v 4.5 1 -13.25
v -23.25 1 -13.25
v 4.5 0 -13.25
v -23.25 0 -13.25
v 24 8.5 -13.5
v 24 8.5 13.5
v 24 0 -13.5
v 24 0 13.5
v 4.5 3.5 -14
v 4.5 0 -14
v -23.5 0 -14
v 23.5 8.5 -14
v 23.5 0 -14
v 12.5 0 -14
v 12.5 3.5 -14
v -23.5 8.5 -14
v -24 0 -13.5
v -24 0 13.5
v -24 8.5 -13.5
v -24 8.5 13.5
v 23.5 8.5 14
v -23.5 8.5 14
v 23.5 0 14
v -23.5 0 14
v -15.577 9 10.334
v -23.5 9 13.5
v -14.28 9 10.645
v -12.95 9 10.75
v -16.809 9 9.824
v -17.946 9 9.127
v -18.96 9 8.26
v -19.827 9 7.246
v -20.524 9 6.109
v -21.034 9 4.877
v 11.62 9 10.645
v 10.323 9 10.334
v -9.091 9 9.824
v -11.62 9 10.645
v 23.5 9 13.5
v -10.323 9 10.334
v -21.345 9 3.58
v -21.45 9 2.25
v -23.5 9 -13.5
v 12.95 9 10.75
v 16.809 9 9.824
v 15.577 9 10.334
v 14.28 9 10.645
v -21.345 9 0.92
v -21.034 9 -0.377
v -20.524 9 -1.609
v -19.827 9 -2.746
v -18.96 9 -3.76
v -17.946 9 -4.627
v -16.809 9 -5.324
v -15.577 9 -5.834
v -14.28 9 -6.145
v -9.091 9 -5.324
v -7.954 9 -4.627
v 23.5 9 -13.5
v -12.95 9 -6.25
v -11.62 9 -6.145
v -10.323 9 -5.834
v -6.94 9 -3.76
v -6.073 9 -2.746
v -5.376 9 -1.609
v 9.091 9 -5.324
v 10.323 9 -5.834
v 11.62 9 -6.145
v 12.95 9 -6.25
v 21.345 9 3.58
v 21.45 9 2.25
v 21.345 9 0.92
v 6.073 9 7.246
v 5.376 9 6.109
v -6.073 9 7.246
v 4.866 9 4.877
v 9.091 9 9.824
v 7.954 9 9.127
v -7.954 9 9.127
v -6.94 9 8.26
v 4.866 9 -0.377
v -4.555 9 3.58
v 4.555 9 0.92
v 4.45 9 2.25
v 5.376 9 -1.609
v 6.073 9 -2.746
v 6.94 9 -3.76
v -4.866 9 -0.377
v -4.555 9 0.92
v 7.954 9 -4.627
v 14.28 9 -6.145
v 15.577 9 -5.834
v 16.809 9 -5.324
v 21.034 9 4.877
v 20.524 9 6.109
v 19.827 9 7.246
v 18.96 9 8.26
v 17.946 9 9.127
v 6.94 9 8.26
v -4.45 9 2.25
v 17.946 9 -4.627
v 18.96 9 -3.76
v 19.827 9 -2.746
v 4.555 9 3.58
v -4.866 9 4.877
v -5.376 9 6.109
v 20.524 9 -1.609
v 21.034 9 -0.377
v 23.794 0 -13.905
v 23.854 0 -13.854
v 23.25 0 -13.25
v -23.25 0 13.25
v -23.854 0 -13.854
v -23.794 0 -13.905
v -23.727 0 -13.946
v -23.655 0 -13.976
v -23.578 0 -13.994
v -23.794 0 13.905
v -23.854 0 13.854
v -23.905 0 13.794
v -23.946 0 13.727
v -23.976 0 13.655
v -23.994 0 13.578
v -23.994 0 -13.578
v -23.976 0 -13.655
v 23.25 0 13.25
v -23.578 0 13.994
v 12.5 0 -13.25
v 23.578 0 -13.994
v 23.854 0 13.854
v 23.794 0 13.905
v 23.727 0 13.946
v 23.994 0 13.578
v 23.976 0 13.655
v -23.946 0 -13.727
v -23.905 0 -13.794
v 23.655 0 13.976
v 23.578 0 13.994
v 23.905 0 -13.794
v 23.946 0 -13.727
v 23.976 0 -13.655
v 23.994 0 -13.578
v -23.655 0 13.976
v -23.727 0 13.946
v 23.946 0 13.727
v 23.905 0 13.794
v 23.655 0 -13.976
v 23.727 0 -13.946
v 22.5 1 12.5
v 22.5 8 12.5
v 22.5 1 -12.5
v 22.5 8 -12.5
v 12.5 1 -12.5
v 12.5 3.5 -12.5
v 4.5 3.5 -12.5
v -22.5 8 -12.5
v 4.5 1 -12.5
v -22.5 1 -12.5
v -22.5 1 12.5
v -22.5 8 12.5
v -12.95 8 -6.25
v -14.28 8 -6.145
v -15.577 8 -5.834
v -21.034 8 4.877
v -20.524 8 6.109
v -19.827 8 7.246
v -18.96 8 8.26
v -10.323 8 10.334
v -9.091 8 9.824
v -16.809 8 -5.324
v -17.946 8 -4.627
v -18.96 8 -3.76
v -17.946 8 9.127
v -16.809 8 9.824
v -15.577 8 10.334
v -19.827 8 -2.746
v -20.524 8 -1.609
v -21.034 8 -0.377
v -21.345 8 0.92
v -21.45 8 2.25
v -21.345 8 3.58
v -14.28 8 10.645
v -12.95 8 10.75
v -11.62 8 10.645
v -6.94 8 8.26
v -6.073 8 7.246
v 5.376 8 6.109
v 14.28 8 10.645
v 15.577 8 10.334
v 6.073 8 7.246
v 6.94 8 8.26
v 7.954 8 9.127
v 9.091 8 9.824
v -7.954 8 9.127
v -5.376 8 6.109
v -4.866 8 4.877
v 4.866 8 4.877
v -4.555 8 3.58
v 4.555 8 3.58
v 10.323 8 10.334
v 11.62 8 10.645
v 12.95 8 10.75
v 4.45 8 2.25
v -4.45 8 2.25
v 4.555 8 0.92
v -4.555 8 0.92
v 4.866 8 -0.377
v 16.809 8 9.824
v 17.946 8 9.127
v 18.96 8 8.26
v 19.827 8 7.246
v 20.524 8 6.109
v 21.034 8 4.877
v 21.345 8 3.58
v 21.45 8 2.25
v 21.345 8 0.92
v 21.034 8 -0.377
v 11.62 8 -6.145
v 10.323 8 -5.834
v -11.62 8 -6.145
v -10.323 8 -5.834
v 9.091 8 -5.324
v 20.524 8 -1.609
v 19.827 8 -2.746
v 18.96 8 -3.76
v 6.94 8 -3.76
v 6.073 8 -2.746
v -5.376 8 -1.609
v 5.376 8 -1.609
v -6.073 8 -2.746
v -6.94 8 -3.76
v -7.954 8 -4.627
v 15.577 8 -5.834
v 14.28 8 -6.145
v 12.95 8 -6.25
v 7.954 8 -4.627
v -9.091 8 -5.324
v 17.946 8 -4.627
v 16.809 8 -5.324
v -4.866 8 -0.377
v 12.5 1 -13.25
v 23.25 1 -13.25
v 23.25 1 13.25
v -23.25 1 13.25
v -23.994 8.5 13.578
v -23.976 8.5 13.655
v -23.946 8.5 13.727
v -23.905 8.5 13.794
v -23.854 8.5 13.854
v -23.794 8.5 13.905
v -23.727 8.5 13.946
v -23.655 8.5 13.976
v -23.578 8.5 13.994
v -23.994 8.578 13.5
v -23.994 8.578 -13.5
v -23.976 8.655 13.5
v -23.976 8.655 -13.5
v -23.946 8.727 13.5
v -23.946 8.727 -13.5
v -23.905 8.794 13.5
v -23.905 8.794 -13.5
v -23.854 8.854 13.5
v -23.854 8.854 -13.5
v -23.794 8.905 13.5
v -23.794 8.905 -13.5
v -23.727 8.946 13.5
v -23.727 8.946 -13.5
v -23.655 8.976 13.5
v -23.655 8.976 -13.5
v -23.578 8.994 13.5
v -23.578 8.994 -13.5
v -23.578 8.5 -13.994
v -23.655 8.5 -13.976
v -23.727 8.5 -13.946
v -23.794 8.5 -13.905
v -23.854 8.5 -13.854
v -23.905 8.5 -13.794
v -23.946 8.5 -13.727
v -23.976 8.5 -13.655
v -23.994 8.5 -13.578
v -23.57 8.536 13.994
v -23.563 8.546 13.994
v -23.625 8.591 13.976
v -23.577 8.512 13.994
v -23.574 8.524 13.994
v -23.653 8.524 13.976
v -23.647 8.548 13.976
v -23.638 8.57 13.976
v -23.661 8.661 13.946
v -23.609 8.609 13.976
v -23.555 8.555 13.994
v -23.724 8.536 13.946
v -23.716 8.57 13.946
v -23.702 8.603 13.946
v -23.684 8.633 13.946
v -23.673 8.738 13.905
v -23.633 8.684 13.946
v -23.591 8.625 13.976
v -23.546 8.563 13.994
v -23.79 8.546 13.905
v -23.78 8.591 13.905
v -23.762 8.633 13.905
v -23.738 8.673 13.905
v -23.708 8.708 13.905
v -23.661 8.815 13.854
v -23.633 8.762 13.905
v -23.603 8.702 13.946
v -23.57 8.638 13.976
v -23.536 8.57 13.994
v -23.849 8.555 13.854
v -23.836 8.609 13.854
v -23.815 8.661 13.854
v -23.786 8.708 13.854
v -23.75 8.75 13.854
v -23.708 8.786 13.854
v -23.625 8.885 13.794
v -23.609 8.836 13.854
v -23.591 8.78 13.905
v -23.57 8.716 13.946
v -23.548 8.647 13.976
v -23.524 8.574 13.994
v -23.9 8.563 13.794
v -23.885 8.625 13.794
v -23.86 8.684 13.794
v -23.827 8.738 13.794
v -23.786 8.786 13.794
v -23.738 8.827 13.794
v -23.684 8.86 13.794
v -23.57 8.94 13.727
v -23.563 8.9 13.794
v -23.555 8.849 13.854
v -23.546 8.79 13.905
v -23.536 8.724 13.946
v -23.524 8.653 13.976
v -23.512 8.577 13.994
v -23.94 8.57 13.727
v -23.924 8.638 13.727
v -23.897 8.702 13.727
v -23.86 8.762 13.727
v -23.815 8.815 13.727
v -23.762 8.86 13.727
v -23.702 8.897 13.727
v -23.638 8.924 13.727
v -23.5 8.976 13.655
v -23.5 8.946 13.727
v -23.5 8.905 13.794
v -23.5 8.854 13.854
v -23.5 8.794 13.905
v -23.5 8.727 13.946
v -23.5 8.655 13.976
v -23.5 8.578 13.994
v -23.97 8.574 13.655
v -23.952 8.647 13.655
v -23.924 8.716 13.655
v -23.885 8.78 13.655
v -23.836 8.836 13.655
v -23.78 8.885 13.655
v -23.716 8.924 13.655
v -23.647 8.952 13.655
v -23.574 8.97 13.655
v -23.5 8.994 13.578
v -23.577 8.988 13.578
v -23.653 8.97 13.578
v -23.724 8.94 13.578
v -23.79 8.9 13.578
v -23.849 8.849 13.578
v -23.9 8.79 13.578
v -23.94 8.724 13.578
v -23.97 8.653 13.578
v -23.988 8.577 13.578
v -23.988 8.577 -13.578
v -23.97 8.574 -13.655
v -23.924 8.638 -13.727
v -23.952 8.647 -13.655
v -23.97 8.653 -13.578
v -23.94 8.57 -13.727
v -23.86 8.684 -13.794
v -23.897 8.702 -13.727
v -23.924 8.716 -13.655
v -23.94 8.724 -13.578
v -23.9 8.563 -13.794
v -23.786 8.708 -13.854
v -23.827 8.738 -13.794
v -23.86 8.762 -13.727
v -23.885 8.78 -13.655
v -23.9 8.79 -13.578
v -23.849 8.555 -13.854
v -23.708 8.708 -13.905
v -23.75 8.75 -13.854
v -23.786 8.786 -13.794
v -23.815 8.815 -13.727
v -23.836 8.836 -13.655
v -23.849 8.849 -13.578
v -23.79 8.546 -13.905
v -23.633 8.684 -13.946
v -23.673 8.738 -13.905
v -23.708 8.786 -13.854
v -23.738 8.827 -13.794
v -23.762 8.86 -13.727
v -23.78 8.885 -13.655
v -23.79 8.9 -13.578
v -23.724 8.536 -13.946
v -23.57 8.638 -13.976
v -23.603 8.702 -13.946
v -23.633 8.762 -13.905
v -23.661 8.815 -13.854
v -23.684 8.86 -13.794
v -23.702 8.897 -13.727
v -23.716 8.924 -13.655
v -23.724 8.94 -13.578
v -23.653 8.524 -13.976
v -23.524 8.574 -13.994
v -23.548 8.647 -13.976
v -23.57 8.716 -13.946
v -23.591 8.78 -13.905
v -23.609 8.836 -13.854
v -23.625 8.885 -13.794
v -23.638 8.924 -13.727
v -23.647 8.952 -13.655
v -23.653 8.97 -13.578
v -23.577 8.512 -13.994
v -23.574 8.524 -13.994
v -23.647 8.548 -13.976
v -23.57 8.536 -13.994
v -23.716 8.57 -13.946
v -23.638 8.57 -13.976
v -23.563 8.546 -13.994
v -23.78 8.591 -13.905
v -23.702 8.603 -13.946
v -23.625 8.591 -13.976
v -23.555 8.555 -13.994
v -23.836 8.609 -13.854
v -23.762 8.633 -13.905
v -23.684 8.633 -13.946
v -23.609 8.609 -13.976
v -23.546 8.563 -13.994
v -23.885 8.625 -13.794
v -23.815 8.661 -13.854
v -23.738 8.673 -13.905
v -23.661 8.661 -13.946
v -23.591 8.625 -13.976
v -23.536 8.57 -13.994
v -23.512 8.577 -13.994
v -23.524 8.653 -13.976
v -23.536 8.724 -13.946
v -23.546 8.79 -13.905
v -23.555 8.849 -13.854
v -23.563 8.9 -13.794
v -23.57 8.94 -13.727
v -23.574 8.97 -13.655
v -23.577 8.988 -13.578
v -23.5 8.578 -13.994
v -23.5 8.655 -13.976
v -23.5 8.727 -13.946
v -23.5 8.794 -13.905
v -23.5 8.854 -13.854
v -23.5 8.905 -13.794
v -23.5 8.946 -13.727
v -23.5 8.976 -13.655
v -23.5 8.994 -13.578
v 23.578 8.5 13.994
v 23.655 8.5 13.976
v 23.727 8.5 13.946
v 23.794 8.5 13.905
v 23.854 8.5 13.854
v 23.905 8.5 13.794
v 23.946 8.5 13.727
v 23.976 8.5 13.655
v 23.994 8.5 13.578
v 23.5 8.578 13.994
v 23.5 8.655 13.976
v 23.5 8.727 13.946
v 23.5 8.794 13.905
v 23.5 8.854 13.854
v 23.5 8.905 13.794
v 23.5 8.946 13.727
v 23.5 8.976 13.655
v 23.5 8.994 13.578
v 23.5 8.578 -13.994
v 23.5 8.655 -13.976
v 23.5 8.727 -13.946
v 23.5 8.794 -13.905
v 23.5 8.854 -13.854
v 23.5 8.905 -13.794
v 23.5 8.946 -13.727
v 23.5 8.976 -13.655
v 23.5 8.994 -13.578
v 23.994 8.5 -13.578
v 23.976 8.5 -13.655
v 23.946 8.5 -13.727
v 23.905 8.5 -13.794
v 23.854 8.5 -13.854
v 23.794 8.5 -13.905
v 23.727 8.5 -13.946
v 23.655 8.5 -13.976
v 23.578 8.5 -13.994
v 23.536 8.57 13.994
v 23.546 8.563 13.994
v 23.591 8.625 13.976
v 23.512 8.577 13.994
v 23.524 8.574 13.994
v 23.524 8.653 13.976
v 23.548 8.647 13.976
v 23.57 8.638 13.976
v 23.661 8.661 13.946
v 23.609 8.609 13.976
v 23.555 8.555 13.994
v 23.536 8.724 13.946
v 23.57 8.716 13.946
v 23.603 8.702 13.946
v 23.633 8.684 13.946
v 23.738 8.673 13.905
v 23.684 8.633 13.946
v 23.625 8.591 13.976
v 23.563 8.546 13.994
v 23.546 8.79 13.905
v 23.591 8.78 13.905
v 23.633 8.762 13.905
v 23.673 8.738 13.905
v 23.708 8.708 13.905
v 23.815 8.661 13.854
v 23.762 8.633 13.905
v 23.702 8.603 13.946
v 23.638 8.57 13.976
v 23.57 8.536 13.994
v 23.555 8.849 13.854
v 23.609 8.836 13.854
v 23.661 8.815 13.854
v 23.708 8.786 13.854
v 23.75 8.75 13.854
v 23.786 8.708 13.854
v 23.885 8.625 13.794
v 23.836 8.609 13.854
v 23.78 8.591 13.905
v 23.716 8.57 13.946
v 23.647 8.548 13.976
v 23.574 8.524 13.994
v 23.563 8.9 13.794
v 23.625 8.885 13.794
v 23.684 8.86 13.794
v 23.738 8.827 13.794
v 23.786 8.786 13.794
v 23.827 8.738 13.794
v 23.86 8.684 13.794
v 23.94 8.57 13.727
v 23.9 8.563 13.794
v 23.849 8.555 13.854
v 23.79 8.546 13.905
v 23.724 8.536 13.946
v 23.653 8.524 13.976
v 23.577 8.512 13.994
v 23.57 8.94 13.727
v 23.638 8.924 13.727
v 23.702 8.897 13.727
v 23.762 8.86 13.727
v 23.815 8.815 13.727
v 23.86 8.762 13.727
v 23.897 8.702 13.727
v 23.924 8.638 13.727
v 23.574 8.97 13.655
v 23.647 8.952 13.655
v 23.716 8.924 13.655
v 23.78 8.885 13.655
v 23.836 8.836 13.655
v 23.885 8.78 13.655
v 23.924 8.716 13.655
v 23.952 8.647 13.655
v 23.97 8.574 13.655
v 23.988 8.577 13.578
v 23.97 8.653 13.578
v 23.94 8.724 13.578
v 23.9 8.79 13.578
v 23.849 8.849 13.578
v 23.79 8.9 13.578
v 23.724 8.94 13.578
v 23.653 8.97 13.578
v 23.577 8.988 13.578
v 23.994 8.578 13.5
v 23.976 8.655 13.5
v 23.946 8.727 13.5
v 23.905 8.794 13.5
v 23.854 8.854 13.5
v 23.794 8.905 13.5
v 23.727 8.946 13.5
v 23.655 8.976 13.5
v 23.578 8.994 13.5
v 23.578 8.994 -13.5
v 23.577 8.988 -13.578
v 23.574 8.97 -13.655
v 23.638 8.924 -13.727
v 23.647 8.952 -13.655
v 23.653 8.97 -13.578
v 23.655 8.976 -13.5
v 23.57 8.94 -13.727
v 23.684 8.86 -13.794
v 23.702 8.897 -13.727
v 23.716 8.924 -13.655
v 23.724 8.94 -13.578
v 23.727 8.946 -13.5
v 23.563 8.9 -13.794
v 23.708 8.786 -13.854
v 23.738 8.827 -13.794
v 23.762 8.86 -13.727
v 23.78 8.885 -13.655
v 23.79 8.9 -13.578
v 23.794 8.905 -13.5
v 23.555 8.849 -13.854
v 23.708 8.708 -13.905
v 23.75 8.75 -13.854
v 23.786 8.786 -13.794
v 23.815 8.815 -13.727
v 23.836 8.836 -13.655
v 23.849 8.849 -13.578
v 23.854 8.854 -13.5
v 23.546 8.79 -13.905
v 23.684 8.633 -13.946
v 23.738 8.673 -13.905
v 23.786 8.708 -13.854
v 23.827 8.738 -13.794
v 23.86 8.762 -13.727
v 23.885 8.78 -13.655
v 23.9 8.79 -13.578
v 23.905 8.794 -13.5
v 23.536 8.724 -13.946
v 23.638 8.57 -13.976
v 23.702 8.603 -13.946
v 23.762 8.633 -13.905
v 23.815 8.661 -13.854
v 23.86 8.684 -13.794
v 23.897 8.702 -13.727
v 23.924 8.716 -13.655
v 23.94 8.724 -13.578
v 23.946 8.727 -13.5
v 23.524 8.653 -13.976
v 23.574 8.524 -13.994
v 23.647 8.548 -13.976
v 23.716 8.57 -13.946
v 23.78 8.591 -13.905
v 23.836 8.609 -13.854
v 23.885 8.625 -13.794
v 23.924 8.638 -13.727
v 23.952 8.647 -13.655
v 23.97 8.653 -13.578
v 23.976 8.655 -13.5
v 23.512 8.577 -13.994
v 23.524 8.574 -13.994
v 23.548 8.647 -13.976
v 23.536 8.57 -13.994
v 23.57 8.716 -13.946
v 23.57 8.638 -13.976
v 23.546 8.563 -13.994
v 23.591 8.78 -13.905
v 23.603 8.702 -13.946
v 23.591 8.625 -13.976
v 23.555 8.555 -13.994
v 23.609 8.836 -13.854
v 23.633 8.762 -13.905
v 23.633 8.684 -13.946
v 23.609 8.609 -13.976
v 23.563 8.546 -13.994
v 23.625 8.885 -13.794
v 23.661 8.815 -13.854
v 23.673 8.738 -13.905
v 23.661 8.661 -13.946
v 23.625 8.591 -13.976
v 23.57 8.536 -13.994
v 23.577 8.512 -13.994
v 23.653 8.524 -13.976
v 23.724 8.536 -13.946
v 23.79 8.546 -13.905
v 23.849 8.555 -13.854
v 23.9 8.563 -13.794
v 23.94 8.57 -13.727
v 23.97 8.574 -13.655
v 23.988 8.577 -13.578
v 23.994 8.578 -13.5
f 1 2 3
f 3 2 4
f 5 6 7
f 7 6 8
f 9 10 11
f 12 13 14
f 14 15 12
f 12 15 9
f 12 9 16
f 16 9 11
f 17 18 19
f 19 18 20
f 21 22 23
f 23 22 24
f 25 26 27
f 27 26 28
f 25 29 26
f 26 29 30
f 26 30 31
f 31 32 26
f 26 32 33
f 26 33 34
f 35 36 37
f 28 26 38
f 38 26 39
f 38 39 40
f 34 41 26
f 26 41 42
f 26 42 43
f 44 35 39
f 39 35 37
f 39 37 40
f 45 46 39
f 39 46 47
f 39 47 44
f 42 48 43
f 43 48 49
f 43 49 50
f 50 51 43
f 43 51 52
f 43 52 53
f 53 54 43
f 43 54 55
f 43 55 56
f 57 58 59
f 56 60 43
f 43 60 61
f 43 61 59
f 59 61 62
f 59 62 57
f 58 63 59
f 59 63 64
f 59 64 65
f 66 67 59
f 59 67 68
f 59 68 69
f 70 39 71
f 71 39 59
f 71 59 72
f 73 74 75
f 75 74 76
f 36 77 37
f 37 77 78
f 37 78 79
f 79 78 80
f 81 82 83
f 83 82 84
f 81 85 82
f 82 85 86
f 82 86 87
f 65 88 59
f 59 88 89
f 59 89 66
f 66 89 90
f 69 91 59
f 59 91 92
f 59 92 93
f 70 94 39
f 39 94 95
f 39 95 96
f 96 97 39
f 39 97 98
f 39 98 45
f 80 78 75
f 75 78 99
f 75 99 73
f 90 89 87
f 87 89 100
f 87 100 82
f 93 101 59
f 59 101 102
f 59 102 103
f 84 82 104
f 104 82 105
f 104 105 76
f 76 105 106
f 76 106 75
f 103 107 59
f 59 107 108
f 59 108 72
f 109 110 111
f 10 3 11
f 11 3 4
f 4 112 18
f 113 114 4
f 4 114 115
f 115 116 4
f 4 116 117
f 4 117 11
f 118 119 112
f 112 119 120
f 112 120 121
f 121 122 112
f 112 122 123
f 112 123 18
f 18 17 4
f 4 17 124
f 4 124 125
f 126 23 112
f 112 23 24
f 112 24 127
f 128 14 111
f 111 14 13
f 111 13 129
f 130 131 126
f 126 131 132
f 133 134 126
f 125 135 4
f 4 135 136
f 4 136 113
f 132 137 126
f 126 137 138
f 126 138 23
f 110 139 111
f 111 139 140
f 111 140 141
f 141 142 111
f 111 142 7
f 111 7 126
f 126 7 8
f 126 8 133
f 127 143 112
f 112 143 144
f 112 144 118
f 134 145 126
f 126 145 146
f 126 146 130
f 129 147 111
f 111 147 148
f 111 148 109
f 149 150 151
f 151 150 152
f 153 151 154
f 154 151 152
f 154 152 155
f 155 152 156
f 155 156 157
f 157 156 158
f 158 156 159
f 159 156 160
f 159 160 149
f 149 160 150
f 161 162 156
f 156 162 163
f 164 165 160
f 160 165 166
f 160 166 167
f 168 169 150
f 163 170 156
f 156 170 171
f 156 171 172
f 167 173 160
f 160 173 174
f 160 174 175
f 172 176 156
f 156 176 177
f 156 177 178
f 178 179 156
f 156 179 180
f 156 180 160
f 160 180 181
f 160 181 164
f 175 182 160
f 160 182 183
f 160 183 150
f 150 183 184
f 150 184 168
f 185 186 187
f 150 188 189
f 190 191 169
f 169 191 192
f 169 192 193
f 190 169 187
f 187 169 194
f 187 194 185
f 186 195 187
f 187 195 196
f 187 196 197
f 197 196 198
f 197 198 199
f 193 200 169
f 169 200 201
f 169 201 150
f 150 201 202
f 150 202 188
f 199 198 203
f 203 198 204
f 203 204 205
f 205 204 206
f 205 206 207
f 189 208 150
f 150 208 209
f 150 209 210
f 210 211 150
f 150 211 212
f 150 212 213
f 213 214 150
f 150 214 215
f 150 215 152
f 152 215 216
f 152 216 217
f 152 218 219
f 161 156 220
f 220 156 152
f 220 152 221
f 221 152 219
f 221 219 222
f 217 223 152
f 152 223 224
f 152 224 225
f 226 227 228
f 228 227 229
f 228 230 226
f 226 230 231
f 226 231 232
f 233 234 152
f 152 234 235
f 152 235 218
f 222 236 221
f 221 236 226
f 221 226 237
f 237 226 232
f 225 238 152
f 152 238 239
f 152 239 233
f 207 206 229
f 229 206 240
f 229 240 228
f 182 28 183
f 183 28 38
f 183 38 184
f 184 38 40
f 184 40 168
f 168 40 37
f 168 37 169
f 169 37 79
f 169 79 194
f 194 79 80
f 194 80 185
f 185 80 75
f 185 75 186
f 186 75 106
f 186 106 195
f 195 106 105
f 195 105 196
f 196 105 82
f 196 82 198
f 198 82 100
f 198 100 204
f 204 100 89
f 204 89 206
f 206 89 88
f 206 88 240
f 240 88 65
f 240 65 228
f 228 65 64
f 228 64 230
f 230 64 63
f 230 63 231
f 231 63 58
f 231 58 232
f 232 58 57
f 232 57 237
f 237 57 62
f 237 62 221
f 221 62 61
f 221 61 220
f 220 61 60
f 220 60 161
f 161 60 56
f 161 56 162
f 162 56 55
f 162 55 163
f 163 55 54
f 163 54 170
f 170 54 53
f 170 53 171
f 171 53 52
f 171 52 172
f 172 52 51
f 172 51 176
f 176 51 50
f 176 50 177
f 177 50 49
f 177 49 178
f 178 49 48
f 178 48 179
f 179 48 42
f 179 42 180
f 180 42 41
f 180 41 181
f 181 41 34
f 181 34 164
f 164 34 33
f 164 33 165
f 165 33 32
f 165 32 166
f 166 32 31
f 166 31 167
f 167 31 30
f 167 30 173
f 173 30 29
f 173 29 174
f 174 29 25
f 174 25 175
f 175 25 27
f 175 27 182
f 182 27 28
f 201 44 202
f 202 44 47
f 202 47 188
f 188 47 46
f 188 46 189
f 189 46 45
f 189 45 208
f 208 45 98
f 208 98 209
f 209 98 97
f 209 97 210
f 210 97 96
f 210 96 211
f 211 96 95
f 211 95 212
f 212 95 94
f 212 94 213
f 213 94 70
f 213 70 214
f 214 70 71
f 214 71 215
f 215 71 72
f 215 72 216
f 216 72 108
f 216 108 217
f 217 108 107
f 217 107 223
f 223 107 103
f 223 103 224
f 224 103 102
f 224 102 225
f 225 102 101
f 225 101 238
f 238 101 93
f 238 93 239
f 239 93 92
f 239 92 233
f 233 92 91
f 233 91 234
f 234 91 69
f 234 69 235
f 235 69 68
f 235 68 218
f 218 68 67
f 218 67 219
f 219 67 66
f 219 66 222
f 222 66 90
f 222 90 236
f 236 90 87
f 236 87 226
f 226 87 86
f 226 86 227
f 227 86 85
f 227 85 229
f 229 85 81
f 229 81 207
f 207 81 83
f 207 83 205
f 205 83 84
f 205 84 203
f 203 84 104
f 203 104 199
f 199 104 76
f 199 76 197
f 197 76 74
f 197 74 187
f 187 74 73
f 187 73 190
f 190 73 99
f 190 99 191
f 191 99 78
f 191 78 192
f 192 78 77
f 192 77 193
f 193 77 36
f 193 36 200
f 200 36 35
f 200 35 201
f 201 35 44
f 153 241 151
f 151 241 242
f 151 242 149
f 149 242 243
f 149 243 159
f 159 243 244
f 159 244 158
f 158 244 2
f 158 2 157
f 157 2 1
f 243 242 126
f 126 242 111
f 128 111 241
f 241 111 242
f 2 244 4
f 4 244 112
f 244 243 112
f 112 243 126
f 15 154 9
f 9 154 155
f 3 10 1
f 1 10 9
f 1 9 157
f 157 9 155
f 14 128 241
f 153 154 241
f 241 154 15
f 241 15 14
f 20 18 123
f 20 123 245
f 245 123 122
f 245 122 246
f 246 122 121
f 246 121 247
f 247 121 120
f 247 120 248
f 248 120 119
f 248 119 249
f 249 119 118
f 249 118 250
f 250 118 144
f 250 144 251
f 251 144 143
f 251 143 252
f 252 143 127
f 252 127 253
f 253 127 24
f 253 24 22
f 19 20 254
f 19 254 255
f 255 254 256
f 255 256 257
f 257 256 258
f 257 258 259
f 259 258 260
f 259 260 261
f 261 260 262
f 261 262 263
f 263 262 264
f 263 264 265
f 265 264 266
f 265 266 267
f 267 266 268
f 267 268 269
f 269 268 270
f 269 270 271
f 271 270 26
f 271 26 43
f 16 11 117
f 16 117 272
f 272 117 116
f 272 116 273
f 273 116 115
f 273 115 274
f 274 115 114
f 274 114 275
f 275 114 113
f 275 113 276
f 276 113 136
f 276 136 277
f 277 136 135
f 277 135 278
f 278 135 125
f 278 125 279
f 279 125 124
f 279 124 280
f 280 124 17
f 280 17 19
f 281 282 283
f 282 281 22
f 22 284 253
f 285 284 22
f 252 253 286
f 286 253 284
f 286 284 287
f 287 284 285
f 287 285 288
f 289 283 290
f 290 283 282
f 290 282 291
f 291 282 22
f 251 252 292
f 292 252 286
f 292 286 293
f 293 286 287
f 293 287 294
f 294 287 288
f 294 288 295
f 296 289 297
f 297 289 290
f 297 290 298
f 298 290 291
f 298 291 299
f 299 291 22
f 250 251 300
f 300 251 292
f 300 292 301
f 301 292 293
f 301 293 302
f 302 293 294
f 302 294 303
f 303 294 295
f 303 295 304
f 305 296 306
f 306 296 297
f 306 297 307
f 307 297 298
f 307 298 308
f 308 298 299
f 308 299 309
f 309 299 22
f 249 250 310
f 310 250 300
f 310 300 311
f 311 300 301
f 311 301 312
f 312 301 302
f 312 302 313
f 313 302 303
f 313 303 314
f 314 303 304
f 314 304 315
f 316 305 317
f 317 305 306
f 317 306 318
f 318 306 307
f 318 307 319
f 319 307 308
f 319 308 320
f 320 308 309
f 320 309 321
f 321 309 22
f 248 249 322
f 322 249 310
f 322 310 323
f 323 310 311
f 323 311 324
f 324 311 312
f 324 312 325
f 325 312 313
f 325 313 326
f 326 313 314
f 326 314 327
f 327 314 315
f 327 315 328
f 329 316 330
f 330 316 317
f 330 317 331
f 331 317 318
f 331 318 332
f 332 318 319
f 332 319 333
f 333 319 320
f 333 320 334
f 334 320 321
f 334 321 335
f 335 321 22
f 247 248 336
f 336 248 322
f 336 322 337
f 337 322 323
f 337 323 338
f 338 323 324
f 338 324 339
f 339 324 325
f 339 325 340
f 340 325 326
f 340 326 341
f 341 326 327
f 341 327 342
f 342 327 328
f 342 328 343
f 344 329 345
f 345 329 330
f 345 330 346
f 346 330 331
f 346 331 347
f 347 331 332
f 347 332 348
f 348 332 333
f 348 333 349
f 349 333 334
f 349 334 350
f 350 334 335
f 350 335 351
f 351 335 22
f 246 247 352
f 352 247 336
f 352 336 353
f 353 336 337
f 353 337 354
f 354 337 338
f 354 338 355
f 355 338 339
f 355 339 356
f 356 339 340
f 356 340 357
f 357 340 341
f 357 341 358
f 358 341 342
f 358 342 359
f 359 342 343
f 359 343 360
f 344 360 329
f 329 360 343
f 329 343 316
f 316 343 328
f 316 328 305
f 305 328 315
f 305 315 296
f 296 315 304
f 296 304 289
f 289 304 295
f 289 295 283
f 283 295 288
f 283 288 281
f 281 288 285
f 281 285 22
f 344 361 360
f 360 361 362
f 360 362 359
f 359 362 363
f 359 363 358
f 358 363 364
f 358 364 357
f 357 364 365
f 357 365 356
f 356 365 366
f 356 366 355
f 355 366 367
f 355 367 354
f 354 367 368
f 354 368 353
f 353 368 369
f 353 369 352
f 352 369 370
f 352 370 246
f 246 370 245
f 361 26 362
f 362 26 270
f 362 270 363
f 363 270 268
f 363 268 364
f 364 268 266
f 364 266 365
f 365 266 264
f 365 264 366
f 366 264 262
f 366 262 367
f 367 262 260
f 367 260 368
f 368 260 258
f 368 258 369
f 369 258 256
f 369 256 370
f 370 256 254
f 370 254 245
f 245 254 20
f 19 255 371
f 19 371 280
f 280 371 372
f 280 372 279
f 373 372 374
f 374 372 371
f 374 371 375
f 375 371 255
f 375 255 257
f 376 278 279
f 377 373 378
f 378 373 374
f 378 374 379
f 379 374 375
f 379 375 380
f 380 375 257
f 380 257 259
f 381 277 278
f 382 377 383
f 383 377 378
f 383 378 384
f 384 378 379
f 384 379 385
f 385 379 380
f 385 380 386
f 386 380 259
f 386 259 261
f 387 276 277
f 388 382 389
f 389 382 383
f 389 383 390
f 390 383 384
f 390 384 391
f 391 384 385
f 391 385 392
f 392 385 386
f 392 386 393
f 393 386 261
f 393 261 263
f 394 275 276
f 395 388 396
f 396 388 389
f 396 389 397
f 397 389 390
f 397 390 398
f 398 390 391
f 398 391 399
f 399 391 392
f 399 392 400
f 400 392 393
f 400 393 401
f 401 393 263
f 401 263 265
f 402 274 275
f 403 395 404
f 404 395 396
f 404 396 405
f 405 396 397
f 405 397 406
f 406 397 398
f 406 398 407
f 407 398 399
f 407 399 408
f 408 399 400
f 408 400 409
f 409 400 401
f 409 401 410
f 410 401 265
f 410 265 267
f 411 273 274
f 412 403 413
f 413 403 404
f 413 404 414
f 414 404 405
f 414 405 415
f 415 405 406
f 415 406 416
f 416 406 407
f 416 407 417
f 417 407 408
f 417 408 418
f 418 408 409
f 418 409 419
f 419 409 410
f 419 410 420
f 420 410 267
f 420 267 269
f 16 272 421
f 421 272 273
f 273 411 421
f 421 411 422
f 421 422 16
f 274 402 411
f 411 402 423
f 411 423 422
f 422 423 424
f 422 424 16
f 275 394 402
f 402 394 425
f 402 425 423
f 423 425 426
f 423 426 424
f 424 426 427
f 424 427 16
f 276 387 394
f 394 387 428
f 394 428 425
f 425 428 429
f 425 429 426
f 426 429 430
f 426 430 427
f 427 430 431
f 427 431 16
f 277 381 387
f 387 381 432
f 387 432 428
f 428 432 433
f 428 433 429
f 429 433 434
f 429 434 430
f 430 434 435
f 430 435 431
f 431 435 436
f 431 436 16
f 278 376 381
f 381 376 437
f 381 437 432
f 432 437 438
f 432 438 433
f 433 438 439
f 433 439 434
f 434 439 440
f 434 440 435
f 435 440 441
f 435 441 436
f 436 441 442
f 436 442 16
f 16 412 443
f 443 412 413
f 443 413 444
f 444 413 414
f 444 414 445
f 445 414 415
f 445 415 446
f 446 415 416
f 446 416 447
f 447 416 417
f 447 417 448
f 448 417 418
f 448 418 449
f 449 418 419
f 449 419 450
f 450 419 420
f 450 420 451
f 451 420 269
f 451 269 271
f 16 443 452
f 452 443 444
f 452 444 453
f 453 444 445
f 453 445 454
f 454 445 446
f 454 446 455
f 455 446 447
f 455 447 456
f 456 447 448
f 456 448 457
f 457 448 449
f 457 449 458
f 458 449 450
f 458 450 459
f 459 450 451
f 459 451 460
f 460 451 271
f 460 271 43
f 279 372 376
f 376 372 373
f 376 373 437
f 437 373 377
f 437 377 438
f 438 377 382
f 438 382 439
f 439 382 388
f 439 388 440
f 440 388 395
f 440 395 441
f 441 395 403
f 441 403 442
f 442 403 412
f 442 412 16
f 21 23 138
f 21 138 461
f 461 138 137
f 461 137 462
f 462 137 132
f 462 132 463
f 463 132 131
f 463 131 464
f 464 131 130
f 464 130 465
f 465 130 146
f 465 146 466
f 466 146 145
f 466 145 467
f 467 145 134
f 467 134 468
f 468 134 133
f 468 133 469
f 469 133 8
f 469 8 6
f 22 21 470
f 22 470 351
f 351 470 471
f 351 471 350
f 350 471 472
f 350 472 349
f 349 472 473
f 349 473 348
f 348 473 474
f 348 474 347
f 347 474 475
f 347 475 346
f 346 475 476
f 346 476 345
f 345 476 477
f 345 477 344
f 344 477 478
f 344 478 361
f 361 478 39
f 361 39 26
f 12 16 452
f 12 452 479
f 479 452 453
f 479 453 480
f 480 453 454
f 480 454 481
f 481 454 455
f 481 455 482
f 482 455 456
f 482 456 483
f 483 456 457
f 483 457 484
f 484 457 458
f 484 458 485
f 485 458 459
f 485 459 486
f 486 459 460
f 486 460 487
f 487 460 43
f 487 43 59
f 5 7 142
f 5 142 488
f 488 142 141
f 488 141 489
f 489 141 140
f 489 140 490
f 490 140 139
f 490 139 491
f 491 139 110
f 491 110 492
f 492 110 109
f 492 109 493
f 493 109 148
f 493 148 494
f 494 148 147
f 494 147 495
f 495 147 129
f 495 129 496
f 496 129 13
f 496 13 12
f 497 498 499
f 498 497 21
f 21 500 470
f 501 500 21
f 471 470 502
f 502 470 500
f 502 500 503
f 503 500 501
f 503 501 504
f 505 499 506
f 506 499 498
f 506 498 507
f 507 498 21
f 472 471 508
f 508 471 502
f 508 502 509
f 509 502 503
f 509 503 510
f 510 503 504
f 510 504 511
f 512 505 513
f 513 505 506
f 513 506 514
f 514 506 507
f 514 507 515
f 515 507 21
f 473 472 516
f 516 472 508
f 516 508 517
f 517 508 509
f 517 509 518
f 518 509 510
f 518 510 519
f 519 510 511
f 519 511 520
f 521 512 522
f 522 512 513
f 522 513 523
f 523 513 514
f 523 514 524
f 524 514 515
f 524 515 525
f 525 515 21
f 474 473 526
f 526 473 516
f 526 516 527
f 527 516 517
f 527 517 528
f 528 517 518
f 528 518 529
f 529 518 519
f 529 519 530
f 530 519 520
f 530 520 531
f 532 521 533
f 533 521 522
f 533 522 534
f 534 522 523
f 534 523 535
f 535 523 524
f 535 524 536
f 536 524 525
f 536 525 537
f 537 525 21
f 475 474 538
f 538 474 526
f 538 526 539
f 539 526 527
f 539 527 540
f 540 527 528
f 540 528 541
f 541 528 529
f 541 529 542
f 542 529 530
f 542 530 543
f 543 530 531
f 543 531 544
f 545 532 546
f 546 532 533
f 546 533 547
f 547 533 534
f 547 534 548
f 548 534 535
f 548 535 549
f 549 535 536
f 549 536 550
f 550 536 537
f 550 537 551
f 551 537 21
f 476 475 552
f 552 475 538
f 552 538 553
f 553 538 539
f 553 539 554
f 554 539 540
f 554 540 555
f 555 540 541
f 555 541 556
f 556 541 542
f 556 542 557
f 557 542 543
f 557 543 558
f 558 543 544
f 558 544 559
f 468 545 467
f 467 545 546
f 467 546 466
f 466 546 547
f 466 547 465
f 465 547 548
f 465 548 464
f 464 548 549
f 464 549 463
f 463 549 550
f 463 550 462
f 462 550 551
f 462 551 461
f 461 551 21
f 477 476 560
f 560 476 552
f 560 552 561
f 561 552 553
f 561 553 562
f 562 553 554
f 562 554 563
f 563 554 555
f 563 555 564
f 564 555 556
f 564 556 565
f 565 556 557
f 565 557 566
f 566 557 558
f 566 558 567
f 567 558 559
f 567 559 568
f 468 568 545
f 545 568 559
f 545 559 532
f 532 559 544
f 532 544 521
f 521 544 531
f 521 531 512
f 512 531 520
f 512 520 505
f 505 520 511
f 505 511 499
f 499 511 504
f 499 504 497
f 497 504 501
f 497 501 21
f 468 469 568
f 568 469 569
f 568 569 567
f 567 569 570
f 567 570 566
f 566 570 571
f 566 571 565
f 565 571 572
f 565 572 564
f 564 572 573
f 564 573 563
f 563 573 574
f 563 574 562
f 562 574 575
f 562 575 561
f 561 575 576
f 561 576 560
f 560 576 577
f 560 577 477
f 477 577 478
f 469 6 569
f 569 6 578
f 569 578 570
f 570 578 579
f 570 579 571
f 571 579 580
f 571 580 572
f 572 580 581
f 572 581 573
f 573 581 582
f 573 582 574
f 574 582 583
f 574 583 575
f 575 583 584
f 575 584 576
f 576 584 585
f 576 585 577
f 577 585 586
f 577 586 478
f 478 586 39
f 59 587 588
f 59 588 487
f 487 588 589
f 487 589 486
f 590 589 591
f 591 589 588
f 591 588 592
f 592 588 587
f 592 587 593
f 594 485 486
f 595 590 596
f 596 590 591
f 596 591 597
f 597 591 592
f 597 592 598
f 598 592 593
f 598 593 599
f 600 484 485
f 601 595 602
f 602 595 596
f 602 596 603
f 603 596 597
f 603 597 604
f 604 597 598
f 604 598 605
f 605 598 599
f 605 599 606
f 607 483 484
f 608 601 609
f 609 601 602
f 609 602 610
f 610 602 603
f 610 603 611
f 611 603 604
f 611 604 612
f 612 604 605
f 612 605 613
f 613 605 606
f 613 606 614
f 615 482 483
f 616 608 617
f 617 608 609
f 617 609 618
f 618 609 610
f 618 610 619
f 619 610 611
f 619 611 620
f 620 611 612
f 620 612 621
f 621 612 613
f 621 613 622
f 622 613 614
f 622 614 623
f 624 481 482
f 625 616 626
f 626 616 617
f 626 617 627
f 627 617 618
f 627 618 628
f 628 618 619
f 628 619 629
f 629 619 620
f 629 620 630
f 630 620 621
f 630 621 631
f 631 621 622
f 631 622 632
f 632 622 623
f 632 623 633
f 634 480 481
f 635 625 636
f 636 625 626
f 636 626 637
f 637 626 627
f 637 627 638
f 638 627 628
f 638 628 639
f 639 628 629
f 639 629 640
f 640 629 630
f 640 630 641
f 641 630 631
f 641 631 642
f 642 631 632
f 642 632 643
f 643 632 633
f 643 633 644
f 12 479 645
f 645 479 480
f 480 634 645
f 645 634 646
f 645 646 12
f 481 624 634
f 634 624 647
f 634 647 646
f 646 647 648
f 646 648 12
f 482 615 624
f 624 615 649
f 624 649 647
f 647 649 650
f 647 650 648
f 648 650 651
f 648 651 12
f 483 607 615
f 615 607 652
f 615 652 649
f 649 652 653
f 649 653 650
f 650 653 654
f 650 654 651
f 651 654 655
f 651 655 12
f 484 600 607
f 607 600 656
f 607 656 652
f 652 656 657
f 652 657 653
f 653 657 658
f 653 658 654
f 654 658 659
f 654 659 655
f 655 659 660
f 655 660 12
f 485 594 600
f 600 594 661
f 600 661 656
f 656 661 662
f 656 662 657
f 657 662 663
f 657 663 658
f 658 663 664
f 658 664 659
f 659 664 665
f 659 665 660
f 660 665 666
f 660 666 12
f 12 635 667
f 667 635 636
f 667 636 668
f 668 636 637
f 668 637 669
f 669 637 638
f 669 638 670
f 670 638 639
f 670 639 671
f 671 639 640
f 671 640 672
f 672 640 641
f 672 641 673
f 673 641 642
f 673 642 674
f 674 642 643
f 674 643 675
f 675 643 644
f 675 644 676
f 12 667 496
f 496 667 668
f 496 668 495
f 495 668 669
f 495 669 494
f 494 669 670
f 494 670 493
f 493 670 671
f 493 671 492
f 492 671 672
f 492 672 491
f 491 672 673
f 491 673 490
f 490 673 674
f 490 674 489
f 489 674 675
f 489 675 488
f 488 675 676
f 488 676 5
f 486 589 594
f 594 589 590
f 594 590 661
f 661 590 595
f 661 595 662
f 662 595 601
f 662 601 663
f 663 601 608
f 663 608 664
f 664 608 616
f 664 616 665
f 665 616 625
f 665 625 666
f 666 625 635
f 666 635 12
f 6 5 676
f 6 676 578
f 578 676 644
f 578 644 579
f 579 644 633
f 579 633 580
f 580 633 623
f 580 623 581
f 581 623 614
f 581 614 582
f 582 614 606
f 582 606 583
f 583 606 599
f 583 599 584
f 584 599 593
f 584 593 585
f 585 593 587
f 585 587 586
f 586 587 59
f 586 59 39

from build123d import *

# Parameters (mm, degrees)
SKETCH1_W           = 48
SKETCH1_H           = 28
BOSS_EXTRUDE1_DEPTH = 9
SKETCH2_W           = 45
SKETCH2_H           = 25
CUT_EXTRUDE1_DEPTH  = 8
SKETCH3_R           = 8.5
CUT_EXTRUDE2_DEPTH  = 22
SKETCH4_W           = 46.5
SKETCH4_H           = 26.5
CUT_EXTRUDE3_DEPTH  = 1
SKETCH10_W          = 8
SKETCH10_H          = 3.5
CUT_EXTRUDE4_DEPTH  = 30.206163733
FILLET5_R           = 0.5


with BuildPart() as part:
    # Sketch1 → Boss-Extrude1 (new body)
    with BuildSketch(Plane(origin=(0, 0, 0), x_dir=(1, 0, 0), z_dir=(0, 1, 0))):
        Rectangle(SKETCH1_W, SKETCH1_H)
    extrude(amount=BOSS_EXTRUDE1_DEPTH)

    # Sketch2 → Cut-Extrude1 (cut)
    with BuildSketch(Plane.XZ):
        Rectangle(SKETCH2_W, SKETCH2_H)
    extrude(amount=-CUT_EXTRUDE1_DEPTH, mode=Mode.SUBTRACT)

    # Sketch3 → Cut-Extrude2 (cut)
    with BuildSketch(Plane(origin=(0, 9, 0), x_dir=(1, 0, 0), z_dir=(0, 1, 0))):
        with Locations(Location((-12.95, -2.25, 0), (0, 0, 270))):
            Circle(SKETCH3_R)
        with Locations(Location((12.95, -2.25, 0), (0, 0, 270))):
            Circle(SKETCH3_R)
    extrude(amount=-CUT_EXTRUDE2_DEPTH, mode=Mode.SUBTRACT)

    # Sketch4 → Cut-Extrude3 (cut)
    with BuildSketch(Plane.XZ):
        Rectangle(SKETCH4_W, SKETCH4_H)
    extrude(amount=-CUT_EXTRUDE3_DEPTH, mode=Mode.SUBTRACT)

    # Sketch10 → Cut-Extrude4 (cut, through all)
    with BuildSketch(Plane.XY):
        with Locations((8.5, 1.75)):
            Rectangle(SKETCH10_W, SKETCH10_H)
    extrude(amount=-CUT_EXTRUDE4_DEPTH, mode=Mode.SUBTRACT)

    # Fillet5
    fillet5_edges = [part.edges().sort_by_distance(p)[0] for p in [
        (-24, 9, 0),
        (0, 9, 14),
        (24, 9, 0),
        (0, 9, -14),
        (24, 4.5, 14),
        (-24, 4.5, 14),
        (-24, 4.5, -14),
        (24, 4.5, -14),
    ]]
    fillet(fillet5_edges, radius=FILLET5_R)


solid = part.part
